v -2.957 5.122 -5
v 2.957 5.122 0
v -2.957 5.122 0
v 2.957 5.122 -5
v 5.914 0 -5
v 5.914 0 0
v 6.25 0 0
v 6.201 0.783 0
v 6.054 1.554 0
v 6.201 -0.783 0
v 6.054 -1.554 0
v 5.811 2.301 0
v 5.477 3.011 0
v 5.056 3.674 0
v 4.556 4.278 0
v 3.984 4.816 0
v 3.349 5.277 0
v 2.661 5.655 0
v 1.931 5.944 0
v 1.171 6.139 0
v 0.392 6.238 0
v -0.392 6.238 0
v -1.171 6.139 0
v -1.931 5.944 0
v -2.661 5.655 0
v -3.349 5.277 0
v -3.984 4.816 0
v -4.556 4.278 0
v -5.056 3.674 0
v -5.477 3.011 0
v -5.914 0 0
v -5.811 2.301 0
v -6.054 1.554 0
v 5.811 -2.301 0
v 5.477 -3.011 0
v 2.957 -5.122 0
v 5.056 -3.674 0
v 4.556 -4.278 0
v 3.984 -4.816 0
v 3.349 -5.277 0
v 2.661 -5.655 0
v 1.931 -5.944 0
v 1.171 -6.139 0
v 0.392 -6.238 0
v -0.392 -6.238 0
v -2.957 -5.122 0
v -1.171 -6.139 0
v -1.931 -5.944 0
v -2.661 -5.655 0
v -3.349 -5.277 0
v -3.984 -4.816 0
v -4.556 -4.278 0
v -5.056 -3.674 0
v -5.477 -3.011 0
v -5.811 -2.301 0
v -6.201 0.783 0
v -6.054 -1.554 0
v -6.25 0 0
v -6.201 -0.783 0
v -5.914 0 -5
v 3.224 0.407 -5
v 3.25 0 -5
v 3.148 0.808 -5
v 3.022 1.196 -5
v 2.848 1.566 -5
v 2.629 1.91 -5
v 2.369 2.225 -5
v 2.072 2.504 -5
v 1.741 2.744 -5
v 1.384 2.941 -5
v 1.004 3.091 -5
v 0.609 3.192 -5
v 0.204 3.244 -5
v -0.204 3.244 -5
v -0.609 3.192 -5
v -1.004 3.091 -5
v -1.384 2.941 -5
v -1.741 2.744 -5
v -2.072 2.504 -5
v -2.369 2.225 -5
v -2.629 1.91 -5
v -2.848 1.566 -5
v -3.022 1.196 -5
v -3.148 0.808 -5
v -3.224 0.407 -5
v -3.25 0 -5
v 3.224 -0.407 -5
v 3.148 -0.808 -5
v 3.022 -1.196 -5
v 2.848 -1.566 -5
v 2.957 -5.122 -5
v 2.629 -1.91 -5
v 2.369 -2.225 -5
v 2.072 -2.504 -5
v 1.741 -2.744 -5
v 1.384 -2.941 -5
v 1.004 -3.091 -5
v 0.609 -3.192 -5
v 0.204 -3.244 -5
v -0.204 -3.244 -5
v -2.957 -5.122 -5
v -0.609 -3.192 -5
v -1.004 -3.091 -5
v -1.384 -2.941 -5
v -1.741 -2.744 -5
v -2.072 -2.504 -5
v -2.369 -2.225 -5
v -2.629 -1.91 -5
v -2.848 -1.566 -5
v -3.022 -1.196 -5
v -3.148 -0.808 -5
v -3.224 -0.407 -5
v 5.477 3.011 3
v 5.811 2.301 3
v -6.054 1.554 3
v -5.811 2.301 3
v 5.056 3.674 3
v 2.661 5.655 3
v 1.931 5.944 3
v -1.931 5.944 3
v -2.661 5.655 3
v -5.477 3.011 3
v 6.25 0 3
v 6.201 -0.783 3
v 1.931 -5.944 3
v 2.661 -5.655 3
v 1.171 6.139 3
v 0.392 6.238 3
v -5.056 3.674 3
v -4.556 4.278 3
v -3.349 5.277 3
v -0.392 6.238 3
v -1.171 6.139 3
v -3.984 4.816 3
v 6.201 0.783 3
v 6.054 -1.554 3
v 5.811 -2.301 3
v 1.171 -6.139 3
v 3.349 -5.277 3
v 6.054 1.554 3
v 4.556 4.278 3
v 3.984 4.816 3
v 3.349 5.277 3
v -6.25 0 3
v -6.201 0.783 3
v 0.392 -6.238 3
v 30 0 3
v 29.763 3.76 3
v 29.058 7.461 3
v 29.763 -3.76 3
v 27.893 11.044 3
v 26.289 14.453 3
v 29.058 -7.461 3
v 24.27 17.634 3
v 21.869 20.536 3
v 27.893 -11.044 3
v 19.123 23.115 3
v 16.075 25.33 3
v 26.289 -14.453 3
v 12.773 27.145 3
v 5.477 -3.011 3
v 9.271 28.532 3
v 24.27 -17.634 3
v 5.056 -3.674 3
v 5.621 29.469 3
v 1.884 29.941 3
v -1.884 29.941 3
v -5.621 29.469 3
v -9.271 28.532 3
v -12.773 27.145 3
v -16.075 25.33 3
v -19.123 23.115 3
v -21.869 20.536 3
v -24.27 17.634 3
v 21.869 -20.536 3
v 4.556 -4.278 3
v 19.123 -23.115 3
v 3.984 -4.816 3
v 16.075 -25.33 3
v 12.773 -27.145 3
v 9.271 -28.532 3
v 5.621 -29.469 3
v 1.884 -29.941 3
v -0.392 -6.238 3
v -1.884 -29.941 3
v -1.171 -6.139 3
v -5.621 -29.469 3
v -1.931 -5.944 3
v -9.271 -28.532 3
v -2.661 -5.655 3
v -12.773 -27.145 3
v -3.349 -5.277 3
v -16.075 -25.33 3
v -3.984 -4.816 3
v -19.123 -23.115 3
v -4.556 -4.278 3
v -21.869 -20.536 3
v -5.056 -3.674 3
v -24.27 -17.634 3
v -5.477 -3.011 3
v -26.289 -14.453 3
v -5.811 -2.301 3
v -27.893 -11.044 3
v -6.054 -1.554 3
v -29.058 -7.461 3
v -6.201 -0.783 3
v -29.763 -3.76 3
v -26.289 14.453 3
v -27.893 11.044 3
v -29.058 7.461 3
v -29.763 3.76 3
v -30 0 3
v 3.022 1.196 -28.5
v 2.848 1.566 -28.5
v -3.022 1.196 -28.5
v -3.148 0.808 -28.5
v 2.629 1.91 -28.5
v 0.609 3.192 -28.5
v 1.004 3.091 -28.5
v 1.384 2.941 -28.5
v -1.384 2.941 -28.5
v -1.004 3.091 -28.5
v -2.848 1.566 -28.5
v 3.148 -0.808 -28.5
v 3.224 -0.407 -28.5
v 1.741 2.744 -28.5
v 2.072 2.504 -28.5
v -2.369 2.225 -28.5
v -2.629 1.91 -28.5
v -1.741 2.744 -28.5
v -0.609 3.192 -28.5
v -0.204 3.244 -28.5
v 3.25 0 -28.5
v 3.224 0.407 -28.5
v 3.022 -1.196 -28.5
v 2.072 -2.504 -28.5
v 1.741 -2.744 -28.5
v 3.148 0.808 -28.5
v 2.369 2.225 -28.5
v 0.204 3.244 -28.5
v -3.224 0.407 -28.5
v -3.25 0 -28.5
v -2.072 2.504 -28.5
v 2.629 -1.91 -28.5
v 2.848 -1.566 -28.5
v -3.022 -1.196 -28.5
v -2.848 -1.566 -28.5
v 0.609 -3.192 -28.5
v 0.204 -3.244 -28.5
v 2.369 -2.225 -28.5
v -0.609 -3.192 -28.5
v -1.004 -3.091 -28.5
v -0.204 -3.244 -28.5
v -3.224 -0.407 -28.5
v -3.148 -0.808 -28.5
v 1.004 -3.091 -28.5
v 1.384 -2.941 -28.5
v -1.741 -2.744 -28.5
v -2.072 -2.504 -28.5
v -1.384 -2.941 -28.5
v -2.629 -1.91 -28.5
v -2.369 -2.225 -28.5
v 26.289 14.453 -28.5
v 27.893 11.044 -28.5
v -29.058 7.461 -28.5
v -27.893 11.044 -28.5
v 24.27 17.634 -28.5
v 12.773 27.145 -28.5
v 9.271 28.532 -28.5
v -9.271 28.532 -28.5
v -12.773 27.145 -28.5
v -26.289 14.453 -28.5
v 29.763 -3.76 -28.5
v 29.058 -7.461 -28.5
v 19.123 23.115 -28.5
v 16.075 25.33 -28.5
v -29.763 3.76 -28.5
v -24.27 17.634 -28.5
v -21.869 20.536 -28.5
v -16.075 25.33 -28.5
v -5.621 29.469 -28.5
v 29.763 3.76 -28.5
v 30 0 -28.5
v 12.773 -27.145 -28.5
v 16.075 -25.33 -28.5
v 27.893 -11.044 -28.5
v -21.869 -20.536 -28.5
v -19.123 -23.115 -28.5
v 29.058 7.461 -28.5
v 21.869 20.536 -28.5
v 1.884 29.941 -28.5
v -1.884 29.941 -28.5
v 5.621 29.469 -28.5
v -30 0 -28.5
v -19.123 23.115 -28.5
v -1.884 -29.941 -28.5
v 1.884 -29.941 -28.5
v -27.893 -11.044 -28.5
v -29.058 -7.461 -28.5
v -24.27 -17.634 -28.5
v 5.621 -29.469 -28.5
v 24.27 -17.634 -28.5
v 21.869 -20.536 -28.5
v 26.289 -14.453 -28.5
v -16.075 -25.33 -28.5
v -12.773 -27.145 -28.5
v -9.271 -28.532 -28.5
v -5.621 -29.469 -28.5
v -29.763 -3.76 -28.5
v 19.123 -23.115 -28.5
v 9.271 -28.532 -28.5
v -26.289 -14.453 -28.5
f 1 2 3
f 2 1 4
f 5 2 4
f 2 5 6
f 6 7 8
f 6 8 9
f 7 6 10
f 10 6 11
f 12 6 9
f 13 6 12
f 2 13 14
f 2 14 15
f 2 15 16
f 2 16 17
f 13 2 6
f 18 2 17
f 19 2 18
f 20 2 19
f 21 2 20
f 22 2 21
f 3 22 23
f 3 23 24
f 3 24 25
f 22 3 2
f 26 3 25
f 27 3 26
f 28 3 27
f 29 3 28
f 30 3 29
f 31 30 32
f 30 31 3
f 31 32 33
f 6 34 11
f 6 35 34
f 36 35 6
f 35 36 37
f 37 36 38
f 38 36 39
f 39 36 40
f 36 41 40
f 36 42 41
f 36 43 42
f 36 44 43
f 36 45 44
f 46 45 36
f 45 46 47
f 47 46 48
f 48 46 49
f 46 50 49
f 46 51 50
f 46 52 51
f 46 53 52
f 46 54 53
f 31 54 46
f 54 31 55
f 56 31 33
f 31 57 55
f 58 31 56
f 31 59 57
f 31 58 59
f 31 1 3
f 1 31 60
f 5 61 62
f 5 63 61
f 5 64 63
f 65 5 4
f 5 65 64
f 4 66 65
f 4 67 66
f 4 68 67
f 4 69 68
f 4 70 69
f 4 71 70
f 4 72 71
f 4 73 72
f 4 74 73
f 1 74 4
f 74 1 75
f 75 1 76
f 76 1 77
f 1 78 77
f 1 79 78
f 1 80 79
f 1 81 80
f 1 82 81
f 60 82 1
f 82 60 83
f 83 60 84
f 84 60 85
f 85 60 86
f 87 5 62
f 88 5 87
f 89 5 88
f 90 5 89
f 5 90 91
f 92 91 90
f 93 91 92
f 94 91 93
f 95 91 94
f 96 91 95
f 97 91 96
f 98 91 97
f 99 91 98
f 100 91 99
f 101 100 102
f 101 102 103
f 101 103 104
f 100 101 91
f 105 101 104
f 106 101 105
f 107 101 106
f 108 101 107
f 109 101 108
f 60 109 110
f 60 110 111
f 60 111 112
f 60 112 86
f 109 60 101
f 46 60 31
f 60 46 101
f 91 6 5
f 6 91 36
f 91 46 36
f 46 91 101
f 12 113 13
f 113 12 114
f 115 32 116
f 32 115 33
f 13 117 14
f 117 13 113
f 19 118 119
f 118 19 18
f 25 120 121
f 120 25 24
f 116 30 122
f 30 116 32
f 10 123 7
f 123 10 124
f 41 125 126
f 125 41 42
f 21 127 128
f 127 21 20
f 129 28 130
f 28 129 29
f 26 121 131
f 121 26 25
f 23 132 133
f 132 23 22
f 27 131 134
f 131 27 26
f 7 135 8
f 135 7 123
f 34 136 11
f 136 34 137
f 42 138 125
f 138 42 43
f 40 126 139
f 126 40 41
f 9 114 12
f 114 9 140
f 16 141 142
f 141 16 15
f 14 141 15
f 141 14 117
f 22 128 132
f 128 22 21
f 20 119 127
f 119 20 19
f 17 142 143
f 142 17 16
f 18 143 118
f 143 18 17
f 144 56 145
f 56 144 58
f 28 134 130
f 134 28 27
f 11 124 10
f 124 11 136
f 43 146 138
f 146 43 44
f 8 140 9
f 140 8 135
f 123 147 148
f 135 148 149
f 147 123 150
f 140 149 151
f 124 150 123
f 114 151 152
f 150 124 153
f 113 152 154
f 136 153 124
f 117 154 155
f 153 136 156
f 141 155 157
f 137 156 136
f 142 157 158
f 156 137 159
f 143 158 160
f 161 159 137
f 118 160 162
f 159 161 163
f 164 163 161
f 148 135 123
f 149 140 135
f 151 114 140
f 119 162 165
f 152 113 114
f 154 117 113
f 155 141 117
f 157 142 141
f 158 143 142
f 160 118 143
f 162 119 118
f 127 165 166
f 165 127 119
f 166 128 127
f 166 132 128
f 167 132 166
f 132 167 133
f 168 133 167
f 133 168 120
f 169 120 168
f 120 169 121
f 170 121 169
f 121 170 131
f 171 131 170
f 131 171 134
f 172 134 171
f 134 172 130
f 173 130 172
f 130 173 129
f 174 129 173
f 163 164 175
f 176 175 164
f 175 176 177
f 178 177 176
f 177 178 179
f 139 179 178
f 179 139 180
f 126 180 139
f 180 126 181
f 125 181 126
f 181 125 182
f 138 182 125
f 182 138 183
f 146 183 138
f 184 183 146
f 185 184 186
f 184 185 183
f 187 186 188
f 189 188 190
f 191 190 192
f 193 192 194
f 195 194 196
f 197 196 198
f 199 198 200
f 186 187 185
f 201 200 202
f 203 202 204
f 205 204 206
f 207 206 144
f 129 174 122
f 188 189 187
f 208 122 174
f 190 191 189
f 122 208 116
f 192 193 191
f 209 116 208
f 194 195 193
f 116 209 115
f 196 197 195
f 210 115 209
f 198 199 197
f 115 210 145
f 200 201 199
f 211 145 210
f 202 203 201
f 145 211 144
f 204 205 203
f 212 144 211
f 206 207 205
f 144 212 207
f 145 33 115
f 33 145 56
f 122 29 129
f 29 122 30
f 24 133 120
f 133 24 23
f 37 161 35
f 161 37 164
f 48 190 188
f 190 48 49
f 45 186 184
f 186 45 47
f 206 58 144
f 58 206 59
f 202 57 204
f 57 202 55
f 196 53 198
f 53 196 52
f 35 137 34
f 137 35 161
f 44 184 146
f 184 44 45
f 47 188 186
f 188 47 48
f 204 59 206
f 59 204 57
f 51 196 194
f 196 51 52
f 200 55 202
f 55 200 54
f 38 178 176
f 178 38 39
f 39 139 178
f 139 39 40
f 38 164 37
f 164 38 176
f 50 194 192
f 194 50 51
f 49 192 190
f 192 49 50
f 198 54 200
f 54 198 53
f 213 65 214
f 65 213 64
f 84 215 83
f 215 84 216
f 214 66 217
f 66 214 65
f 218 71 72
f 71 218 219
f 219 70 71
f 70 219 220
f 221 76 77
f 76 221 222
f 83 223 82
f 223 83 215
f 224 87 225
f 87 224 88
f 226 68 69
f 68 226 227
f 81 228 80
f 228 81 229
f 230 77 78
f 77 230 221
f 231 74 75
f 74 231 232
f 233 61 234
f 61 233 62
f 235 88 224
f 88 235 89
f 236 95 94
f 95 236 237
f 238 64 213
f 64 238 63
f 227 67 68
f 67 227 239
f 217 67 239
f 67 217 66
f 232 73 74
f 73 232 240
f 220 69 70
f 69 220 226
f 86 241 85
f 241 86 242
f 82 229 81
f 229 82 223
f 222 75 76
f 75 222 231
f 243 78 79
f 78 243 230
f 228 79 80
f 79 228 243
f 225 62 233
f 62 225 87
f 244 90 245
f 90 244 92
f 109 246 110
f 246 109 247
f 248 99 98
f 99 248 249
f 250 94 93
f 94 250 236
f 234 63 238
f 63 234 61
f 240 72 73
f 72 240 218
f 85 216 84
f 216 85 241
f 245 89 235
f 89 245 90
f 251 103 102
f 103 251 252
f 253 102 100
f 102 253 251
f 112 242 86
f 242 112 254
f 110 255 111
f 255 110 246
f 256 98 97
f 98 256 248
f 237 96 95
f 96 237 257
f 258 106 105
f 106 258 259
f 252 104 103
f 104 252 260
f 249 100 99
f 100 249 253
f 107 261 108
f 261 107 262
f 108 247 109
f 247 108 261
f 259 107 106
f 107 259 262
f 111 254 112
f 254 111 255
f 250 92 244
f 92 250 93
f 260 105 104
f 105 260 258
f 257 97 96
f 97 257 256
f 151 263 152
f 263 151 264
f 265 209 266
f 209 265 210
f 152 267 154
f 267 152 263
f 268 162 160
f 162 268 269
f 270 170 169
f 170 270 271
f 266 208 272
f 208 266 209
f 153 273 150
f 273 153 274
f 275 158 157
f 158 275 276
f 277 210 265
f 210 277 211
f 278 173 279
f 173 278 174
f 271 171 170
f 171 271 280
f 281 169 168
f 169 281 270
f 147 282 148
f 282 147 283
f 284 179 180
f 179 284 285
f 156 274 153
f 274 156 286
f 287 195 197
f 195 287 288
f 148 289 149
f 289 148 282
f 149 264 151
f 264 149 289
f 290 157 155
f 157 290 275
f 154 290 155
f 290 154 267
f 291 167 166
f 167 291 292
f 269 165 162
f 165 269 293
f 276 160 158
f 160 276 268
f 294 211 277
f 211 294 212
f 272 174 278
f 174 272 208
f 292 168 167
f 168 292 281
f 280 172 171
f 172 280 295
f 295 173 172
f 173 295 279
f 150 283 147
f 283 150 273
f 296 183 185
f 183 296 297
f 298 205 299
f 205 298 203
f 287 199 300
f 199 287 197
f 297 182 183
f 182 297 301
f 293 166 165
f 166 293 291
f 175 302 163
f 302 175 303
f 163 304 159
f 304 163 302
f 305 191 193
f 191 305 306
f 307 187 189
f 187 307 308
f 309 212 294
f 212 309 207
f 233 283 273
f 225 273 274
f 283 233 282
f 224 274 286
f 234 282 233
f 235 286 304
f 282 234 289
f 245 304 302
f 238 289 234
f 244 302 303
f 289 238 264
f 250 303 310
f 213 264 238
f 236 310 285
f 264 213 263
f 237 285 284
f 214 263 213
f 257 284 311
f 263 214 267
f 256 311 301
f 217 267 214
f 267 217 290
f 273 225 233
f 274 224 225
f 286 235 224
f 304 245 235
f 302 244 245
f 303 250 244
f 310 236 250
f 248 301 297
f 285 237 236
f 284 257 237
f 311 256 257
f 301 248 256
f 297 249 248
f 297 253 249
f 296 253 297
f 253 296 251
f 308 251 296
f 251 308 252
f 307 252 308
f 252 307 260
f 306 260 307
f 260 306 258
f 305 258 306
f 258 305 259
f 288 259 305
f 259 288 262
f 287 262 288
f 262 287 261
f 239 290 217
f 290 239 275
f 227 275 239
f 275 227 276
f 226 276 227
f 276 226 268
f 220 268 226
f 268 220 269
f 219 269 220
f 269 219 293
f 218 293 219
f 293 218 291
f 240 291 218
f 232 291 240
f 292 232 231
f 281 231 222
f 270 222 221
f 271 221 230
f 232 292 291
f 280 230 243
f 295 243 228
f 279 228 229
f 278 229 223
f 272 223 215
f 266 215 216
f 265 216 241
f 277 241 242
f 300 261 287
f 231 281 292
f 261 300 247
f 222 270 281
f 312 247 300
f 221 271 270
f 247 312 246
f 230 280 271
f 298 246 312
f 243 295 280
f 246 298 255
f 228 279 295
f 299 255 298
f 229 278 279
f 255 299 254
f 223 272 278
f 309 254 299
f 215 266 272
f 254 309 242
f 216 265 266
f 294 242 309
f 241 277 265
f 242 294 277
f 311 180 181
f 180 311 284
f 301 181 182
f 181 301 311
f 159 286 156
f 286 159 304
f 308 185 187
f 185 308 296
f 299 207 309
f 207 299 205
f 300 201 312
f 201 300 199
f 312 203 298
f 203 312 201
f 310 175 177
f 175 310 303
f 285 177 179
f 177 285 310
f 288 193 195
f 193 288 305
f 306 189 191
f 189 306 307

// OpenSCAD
$fn = 50;

difference() {
	union() {
		translate(v = [0, 0, -28.5]) {
			cylinder(h = 31.5, r = 30.0);
		}
	}
	union() {
		translate(v = [0, 0, 0]) {
			rotate(a = [0, 0, 0]) {
				difference() {
					union() {
						translate(v = [0, 0, -5]) {
							linear_extrude(height = 5) {
								polygon(points = [[5.914249999999999, 0.0], [2.957125, 5.1218907443321156], [-2.9571249999999982, 5.1218907443321156], [-5.914249999999999, 7.242867331857232e-16], [-2.9571250000000022, -5.121890744332115], [2.9571249999999956, -5.121890744332118]]);
							}
						}
					}
					union();
				}
			}
		}
		#cylinder(h = 3, r = 6.25);
		#translate(v = [0, 0, -100.0]) {
			cylinder(h = 200, r = 3.25);
		}
	}
}
